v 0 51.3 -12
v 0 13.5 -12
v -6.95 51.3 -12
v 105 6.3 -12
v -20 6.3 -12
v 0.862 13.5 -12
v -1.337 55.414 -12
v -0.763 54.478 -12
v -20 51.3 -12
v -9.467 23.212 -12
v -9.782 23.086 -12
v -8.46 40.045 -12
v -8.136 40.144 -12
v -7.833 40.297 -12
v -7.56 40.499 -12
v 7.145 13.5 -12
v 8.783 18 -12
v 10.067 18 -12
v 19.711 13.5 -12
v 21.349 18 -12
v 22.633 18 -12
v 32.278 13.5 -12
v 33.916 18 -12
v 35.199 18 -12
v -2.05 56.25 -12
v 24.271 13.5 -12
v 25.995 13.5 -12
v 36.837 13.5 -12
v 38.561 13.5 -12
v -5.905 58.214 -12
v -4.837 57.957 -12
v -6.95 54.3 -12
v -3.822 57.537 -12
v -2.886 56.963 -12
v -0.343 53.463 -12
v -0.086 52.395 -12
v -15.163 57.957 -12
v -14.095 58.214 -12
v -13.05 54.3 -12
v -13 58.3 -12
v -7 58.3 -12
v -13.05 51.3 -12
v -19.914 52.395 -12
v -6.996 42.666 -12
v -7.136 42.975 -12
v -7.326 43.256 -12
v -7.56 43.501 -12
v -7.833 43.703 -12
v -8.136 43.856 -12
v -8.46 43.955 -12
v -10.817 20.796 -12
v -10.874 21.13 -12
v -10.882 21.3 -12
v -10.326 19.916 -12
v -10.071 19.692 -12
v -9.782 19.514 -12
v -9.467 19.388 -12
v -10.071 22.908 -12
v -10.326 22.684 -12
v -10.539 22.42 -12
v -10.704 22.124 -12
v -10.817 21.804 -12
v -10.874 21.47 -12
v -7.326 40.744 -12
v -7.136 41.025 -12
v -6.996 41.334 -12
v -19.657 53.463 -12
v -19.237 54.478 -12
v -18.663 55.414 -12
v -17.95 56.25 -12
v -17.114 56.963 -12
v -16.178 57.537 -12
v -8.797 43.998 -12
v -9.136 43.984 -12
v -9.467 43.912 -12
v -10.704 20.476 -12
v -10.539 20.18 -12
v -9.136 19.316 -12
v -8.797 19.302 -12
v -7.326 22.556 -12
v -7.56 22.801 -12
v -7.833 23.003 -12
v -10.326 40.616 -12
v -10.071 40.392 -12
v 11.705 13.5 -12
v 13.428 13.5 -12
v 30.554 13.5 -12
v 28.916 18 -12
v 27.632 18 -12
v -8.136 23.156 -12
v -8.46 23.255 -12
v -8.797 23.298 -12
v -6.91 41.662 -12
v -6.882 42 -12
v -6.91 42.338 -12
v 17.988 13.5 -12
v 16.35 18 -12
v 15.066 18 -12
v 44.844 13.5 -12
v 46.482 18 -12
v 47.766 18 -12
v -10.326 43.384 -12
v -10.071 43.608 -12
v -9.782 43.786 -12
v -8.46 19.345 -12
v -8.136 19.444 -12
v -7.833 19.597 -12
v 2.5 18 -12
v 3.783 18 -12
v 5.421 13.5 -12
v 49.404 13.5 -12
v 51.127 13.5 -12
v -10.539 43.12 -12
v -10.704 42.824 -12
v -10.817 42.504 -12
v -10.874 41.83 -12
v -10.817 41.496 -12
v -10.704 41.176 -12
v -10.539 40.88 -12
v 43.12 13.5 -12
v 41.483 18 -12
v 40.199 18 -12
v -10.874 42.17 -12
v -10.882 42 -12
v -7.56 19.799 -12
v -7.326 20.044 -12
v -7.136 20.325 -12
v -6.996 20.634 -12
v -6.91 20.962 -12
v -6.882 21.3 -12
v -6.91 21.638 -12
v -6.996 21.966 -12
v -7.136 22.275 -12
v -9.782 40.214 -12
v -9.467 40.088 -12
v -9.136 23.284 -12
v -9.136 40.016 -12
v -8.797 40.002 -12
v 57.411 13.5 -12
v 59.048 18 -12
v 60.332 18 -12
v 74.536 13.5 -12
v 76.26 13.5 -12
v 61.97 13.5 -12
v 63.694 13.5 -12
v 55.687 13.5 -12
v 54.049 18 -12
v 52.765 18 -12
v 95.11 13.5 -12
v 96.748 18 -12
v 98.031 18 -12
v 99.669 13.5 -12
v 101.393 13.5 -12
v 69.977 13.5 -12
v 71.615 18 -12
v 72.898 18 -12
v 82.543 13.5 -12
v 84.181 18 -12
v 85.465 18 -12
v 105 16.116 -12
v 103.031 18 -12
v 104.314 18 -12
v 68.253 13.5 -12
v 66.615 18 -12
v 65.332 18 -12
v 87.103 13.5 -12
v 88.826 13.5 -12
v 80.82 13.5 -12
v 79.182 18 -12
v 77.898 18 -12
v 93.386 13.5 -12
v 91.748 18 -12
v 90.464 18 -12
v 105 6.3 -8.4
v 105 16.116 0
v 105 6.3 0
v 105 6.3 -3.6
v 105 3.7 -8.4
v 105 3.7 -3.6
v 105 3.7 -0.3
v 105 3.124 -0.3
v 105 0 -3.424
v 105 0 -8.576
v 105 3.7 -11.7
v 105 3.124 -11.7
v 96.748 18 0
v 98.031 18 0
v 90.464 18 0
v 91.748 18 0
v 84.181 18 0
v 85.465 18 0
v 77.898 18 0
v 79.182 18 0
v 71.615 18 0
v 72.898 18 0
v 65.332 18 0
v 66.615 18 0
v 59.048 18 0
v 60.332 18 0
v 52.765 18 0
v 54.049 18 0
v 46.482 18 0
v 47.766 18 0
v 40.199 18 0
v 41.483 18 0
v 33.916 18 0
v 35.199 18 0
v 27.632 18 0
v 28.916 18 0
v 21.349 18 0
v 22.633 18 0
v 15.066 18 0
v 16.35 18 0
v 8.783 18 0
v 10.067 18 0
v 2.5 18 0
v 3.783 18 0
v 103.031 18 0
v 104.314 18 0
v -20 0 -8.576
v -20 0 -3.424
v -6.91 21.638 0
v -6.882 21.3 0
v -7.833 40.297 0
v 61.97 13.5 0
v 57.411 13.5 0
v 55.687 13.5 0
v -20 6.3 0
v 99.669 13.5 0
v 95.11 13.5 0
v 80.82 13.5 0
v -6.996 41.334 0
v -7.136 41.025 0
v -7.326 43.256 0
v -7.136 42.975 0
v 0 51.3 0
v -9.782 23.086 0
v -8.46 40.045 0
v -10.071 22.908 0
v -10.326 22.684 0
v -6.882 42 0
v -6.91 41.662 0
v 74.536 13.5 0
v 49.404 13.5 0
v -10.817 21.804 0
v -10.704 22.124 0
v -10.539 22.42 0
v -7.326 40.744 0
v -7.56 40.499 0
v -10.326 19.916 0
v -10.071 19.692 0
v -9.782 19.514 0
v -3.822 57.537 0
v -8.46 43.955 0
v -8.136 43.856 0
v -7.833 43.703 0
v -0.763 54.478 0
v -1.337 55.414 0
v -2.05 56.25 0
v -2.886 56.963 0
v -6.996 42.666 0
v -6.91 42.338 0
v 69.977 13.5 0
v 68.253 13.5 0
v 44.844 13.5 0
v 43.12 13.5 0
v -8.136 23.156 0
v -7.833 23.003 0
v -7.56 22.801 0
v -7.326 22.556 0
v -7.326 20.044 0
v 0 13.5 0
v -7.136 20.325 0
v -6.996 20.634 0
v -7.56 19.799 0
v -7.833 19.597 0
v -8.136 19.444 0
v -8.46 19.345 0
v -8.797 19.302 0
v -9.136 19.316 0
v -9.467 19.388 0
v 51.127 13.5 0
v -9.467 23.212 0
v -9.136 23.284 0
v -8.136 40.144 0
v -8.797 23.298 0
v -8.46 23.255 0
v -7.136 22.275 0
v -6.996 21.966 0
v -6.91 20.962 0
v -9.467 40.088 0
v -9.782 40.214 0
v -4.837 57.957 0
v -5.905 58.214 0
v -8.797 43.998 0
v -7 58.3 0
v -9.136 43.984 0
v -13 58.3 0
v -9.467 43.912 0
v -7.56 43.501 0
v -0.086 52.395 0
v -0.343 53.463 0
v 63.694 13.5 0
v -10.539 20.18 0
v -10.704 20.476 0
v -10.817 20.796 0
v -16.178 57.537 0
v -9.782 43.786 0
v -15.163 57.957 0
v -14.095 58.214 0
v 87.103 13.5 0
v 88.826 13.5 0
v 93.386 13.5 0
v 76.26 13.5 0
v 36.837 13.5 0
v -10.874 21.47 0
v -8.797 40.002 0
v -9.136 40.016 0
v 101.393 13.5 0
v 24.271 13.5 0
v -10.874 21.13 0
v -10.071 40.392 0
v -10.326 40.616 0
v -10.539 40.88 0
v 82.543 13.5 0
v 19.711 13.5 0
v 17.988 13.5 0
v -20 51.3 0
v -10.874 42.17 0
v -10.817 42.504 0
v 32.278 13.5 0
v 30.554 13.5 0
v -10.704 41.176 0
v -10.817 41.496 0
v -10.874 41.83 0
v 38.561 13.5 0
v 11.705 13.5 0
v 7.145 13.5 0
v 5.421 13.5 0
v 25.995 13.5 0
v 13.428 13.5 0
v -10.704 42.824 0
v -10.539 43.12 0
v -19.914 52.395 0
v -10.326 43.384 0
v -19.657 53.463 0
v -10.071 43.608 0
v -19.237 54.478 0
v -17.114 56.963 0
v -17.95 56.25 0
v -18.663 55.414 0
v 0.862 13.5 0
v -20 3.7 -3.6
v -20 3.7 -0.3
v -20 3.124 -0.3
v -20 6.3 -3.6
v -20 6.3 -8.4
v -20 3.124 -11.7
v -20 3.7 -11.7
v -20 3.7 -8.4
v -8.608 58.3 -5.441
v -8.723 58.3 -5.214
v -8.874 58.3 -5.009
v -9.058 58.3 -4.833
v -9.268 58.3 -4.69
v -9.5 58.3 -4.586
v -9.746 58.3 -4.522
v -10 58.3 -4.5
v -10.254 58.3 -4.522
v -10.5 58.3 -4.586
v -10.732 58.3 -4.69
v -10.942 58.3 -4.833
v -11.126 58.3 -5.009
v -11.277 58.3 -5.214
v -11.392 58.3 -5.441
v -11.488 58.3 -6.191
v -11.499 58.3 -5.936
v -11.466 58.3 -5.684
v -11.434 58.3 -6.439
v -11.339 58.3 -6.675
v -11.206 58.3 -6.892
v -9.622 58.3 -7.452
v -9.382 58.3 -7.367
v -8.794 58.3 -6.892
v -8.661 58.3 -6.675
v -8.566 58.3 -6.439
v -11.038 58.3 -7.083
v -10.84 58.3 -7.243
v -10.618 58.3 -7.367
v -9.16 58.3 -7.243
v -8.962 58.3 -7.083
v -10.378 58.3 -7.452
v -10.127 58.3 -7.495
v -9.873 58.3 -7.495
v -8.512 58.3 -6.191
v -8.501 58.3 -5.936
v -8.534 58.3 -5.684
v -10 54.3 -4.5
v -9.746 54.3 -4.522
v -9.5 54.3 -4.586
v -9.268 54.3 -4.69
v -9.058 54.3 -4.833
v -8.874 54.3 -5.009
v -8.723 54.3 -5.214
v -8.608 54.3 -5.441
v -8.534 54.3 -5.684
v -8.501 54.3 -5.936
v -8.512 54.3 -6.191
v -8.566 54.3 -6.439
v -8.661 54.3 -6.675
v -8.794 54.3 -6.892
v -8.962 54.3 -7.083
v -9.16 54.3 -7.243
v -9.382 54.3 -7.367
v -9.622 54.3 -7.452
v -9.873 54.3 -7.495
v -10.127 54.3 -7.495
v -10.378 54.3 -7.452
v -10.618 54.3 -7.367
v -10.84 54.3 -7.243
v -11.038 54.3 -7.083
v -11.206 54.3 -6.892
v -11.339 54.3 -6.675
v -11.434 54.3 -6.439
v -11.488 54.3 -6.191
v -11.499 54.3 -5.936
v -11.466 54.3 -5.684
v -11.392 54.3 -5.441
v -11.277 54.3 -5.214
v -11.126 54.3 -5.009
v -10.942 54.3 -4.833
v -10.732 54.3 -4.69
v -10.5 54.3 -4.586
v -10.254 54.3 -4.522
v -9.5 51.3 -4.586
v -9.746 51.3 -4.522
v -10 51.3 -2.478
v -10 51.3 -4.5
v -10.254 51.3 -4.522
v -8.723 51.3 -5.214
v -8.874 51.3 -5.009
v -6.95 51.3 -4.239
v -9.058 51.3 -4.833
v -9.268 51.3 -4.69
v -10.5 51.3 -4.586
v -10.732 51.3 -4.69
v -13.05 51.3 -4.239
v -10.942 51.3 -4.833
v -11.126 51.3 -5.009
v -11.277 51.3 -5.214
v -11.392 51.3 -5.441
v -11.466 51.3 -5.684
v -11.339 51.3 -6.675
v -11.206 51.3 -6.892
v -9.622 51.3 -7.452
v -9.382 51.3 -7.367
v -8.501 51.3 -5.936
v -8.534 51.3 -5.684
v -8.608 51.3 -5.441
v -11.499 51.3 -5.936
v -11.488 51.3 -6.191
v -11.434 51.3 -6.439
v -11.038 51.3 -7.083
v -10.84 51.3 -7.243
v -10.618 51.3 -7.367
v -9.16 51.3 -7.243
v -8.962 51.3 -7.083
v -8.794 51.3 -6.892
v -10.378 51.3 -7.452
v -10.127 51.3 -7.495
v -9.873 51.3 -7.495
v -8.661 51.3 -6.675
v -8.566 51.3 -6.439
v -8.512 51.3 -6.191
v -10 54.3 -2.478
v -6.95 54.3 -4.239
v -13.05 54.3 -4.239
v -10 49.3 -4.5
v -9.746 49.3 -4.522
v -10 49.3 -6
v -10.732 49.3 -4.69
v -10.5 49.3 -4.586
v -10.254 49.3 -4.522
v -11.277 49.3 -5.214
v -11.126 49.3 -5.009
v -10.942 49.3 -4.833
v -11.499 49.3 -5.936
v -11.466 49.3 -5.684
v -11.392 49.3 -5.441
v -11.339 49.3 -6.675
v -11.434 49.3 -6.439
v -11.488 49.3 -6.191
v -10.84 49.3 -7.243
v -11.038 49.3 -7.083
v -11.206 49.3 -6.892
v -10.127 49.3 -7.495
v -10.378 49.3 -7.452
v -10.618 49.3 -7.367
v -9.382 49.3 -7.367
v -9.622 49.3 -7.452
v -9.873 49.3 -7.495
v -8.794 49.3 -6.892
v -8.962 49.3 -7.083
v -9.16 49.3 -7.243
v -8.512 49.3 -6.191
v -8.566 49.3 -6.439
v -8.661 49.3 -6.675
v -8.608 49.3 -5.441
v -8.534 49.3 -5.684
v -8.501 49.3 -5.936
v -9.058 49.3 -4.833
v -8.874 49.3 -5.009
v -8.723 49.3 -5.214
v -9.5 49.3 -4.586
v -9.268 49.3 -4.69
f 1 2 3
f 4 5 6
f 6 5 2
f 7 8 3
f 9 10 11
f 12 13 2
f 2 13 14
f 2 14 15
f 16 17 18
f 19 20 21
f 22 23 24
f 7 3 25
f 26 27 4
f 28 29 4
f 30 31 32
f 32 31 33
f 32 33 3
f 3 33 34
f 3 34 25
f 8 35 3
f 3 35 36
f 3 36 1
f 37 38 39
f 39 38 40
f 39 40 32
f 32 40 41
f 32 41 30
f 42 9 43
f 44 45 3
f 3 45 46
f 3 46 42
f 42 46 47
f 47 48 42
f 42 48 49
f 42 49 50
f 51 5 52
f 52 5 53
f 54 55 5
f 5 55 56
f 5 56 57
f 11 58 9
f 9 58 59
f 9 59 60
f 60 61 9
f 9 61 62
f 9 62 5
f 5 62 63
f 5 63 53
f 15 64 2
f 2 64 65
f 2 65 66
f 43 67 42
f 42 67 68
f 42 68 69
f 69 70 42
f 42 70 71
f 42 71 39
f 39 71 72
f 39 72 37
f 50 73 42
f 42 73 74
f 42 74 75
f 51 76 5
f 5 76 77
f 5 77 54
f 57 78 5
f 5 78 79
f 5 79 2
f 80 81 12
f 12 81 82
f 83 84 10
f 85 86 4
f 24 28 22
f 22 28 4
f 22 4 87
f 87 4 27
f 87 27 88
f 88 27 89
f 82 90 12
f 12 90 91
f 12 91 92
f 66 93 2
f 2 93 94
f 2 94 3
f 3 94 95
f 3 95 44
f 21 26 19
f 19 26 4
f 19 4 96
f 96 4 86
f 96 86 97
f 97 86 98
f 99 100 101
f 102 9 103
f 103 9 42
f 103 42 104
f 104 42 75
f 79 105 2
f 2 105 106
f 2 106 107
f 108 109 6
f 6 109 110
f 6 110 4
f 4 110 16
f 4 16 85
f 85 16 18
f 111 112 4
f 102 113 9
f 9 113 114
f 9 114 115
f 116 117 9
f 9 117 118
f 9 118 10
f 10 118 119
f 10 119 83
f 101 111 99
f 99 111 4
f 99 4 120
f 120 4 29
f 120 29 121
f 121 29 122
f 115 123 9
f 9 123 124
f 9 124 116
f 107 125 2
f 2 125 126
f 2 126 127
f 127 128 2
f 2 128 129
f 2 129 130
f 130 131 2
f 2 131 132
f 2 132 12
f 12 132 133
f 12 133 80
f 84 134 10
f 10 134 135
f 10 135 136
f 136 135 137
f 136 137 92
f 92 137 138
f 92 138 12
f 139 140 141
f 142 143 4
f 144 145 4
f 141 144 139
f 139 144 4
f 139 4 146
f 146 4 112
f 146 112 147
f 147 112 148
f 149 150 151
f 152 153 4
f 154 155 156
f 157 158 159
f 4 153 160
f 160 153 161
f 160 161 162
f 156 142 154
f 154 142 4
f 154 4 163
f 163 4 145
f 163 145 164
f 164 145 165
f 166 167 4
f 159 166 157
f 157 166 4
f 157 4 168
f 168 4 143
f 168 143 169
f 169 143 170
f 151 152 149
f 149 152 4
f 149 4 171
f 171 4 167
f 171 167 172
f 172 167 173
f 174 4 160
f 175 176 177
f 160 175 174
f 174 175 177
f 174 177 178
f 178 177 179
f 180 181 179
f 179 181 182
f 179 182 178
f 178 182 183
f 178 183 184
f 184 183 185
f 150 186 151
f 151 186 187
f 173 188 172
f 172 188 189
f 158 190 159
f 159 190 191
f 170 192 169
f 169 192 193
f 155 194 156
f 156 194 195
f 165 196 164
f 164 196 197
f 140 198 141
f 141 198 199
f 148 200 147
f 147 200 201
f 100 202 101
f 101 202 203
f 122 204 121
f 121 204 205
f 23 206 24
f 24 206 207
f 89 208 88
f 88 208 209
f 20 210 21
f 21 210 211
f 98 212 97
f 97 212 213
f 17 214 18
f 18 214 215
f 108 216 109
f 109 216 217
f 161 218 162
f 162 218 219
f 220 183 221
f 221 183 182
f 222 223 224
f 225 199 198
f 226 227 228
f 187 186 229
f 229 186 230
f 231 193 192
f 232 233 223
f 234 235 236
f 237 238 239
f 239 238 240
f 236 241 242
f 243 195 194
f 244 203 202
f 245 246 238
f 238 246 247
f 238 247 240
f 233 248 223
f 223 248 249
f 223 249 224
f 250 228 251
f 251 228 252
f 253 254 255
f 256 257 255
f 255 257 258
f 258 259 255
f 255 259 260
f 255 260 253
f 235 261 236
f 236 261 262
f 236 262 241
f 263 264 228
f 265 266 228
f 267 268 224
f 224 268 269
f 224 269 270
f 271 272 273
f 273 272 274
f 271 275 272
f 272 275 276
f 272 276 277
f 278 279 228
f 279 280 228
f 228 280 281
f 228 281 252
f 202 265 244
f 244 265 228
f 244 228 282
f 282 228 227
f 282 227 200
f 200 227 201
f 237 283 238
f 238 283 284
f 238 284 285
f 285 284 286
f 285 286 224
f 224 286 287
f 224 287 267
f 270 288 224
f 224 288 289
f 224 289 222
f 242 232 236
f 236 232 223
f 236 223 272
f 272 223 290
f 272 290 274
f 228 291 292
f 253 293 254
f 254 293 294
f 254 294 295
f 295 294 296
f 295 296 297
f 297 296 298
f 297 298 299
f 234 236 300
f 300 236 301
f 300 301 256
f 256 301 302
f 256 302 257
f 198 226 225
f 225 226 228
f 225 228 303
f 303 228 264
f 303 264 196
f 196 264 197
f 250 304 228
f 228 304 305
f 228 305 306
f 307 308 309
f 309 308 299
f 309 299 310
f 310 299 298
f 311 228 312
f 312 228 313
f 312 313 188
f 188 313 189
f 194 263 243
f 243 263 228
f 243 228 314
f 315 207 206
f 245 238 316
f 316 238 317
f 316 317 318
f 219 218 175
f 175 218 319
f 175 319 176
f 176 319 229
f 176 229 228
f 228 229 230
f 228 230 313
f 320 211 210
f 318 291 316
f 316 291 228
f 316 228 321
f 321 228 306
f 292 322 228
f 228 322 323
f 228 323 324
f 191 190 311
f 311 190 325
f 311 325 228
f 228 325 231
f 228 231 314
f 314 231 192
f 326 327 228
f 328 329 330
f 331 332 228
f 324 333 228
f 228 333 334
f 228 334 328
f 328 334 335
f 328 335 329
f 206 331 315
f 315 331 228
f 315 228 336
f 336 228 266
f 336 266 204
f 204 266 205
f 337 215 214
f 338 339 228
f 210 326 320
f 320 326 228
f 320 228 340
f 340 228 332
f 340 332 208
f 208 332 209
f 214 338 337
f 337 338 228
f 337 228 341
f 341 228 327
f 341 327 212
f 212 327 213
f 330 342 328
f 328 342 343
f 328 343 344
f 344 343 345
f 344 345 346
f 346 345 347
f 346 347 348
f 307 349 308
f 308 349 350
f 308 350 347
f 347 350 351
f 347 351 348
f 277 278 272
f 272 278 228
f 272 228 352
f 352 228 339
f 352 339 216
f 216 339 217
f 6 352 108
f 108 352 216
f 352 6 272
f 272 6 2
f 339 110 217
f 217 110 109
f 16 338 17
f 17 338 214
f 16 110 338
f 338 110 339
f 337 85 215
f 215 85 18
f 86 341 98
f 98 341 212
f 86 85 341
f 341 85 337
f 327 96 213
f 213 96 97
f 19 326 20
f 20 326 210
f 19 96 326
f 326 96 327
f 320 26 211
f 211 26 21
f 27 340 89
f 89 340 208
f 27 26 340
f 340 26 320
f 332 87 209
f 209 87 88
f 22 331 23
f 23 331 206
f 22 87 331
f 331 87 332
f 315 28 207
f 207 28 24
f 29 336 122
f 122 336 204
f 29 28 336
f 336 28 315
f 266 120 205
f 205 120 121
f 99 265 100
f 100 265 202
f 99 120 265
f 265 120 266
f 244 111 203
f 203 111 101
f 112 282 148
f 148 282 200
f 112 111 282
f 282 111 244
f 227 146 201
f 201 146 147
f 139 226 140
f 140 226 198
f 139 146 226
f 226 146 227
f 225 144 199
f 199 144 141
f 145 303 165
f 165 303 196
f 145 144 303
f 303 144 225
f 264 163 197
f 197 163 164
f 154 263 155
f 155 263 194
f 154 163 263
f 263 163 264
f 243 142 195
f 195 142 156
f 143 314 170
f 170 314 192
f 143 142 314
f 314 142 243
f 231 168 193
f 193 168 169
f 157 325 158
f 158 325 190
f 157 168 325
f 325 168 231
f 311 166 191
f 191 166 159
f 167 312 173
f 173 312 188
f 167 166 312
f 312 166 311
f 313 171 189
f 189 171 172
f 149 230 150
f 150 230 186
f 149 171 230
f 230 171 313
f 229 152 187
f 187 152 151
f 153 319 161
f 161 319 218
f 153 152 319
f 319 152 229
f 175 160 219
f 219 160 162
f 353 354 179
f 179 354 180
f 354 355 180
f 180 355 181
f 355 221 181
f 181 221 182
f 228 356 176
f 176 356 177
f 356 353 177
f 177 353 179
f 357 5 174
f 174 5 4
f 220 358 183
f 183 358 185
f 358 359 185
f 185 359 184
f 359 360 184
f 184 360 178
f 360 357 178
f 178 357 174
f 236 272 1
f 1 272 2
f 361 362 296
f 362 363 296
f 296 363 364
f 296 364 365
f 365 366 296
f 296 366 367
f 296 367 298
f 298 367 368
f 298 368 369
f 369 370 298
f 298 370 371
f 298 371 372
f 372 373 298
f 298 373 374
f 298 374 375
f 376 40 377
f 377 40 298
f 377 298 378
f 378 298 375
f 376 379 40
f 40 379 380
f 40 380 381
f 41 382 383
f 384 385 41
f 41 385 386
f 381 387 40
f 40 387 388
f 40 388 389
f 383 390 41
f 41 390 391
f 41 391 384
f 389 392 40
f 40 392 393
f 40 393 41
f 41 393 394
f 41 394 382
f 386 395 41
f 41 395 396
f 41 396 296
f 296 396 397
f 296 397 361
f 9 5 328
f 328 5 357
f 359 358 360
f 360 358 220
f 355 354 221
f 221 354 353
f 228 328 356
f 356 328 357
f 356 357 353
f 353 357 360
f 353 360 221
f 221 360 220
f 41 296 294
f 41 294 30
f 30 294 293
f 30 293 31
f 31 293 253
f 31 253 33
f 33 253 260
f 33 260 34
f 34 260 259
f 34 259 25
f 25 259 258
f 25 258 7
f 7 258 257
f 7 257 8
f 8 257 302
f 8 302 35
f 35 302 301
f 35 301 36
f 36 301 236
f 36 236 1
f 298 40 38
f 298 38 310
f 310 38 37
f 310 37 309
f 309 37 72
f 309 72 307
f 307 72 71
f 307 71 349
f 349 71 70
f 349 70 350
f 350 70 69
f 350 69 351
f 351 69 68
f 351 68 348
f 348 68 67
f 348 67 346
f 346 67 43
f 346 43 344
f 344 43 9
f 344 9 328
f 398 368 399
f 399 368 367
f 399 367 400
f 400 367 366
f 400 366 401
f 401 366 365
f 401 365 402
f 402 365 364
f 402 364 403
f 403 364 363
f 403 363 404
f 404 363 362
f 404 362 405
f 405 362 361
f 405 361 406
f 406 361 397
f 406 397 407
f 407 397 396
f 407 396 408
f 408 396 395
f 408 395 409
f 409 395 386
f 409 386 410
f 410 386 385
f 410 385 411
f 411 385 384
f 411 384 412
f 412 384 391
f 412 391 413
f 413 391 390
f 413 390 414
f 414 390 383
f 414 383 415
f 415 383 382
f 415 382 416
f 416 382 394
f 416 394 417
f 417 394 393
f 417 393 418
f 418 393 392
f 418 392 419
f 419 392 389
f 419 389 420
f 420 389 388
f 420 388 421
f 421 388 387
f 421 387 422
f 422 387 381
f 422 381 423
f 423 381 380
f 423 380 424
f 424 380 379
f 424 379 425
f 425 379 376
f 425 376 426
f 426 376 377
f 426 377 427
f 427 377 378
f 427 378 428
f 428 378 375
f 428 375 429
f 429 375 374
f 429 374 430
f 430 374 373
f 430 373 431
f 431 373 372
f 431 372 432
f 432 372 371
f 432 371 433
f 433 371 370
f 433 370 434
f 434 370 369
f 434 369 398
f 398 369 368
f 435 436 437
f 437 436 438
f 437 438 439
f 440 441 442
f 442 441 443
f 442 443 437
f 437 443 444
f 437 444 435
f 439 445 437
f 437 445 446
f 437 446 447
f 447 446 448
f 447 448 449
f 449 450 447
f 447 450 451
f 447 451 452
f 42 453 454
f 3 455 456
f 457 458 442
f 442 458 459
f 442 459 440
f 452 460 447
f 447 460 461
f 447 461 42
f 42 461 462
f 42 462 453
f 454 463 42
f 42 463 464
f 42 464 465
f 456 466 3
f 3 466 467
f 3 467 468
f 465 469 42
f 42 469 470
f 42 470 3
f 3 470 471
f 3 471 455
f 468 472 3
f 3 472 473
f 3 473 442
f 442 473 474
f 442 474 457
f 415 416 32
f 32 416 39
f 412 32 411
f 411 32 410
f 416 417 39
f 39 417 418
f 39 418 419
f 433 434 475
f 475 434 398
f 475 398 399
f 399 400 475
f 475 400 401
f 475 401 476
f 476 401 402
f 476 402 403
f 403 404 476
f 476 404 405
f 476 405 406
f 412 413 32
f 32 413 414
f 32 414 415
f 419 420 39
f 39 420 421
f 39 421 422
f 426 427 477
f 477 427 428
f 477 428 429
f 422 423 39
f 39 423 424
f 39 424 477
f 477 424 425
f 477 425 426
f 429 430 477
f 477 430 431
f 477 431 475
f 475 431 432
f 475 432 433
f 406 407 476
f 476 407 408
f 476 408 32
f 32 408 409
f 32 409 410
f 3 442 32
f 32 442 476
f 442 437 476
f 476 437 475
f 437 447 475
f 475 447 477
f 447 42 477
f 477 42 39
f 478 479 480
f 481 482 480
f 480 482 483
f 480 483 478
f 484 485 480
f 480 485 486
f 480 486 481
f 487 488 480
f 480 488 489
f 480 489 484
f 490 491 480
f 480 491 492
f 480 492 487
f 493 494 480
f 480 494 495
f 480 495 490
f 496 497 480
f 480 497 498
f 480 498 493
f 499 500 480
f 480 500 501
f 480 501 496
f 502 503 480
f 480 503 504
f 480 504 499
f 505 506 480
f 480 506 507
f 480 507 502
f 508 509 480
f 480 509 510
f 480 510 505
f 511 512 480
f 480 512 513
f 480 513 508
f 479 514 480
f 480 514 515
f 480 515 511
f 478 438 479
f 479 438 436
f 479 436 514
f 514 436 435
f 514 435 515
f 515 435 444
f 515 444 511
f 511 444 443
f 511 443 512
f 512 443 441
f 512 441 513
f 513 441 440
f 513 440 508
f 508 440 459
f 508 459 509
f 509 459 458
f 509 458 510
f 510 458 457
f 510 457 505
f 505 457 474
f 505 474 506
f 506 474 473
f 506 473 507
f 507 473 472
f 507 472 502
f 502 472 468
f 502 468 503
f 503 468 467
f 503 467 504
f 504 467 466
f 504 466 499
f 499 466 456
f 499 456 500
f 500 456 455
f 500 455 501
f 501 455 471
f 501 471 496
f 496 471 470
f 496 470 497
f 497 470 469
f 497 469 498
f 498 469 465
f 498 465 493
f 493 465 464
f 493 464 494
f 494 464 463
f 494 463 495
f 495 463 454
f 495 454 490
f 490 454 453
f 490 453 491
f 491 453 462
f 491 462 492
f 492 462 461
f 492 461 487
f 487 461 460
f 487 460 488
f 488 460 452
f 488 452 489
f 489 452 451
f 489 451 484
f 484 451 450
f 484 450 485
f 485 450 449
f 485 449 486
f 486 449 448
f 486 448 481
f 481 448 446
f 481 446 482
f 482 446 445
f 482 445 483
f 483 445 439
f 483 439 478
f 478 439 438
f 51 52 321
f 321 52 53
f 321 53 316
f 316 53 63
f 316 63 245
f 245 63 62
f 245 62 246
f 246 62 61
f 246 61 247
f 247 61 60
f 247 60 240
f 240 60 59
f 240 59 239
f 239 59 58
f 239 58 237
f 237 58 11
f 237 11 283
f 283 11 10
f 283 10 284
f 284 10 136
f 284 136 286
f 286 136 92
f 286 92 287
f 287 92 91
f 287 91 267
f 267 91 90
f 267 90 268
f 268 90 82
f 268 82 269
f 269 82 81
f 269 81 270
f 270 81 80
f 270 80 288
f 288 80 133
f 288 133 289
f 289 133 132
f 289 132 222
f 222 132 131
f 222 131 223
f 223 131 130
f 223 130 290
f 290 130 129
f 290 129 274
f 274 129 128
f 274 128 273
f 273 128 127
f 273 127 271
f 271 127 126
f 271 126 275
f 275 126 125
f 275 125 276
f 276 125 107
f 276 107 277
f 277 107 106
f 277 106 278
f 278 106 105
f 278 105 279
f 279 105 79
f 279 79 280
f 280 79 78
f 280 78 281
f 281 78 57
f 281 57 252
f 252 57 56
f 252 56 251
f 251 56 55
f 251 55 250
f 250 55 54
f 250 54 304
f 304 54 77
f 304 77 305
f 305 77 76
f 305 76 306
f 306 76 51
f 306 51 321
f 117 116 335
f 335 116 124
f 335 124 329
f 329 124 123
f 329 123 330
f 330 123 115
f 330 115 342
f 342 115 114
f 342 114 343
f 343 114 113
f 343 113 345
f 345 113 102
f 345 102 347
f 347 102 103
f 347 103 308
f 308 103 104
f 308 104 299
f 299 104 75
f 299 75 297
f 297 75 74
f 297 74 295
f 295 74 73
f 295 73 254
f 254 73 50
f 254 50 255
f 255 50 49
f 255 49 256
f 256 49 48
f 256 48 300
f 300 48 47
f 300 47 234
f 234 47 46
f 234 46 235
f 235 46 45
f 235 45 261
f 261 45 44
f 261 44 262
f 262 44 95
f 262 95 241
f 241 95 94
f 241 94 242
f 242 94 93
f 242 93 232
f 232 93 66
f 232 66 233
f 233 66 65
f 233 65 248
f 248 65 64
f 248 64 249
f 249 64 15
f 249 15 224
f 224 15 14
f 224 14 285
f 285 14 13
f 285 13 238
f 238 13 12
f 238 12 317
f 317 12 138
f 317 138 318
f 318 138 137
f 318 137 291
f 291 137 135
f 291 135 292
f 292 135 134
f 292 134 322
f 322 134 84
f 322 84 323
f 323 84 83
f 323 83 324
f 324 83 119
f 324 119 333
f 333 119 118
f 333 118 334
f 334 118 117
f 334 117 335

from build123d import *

# Parameters (mm, degrees)
BLANKSKE_W          = 105
BLANKSKE_H          = 18
BLANK_DEPTH         = 12
TOOTHCUTSIM_DEPTH   = 108.205410311
TEETHCUTS_COUNT     = 18
TEETHCUTS_PITCH     = 6.2831853
CUT_EXTRUDE1_DEPTH  = 108.205410311
BOSS_EXTRUDE1_DEPTH = 20
FILLET2_R           = 7
CUT_EXTRUDE2_DEPTH  = 9
CUT_EXTRUDE3_DEPTH  = 3
CUT_EXTRUDE4_REACH  = 122.698
SKETCH5_R           = 2


with BuildPart() as part:
    # BlankSke → Blank (new body)
    with BuildSketch(Plane.XY):
        with Locations((52.5, 9)):
            Rectangle(BLANKSKE_W, BLANKSKE_H)
    extrude(amount=-BLANK_DEPTH)

    # TooCutSkeSim → ToothCutSim (cut, through all)
    with BuildSketch(Plane.XY):
        Polygon((0.861870739, 13.5), (-0.861870739, 13.5), (-2.508981637, 18.0254), (2.508981637, 18.0254), align=None)
    toothcutsim = extrude(amount=-TOOTHCUTSIM_DEPTH, mode=Mode.SUBTRACT)

    # TeethCuts: ToothCutSim ×18
    with Locations(*[(i * TEETHCUTS_PITCH, 0, 0) for i in range(1, TEETHCUTS_COUNT)]):
        add(toothcutsim, mode=Mode.SUBTRACT)

    # Sketch1 → Cut-Extrude1 (cut, through all)
    with BuildSketch(Plane(origin=(105, 0, 0), x_dir=(0, 0, -1), z_dir=(1, 0, 0))):
        Polygon((0, 0), (3.424264069, 0), (0.3, 3.124264069), (0.3, 3.7), (3.6, 3.7), (3.6, 6.3), (0, 6.3), align=None)
        Polygon((11.7, 3.124264069), (8.575735931, 0), (12, 0), (12, 6.3), (8.4, 6.3), (8.4, 3.7), (11.7, 3.7), align=None)
    extrude(amount=-CUT_EXTRUDE1_DEPTH, mode=Mode.SUBTRACT)

    # Sketch2 → Boss-Extrude1 (add)
    with BuildSketch(Plane.ZY):
        Polygon((-12, 58.3), (0, 58.3), (0, 6.3), (-3.6, 6.3), (-3.6, 3.7), (-0.3, 3.7), (-0.3, 3.124264069), (-3.424264069, 0), (-8.575735931, 0), (-11.7, 3.124264069), (-11.7, 3.7), (-8.4, 3.7), (-8.4, 6.3), (-12, 6.3), align=None)
    extrude(amount=BOSS_EXTRUDE1_DEPTH)

    # Fillet2
    fillet2_edges = [part.edges().sort_by_distance(p)[0] for p in [
        (0, 58.3, -6),
        (-20, 58.3, -6),
    ]]
    fillet(fillet2_edges, radius=FILLET2_R)

    # Sketch3 → Cut-Extrude2 (cut)
    with BuildSketch(Plane(origin=(0, 58.3, 0), x_dir=(1, 0, 0), z_dir=(0, 1, 0))):
        with BuildLine():
            ThreePointArc((-8.5, 6), (-8.939339828, 7.060660172), (-10, 7.5))
            Line((-10, 7.5), (-10, 4.5))
            ThreePointArc((-10, 4.5), (-8.939339828, 4.939339828), (-8.5, 6))
        make_face()
        with BuildLine():
            Line((-10, 4.5), (-10, 7.5))
            ThreePointArc((-10, 7.5), (-11.5, 6), (-10, 4.5))
        make_face()
    extrude(amount=-CUT_EXTRUDE2_DEPTH, mode=Mode.SUBTRACT)

    # Sketch4 → Cut-Extrude3 (cut)
    with BuildSketch(Plane(origin=(0, 54.3, 0), x_dir=(1, 0, 0), z_dir=(0, 1, 0))):
        Polygon((-13.05, 12), (-13.05, 7.760918321), (-13.05, 6), (-13.05, 4.239081679), (-11.525, 3.358622518), (-10, 2.478163358), (-8.475, 3.358622518), (-6.95, 4.239081679), (-6.95, 6), (-6.95, 7.760918321), (-6.95, 12), align=None)
        with BuildLine():
            ThreePointArc((-8.75, 6), (-10, 4.75), (-11.25, 6))
            ThreePointArc((-11.25, 6), (-10, 7.25), (-8.75, 6))
        make_face(mode=Mode.SUBTRACT)
    extrude(amount=-CUT_EXTRUDE3_DEPTH, mode=Mode.SUBTRACT)

    # Sketch5 → Cut-Extrude4 (cut, up to next)
    with BuildSketch(Plane.XY, mode=Mode.PRIVATE) as cut_extrude4_sk1:
        with Locations((-8.8817, 42)):
            Circle(SKETCH5_R)
    cut_extrude4_tool1 = extrude(cut_extrude4_sk1.sketch, amount=-CUT_EXTRUDE4_REACH, mode=Mode.PRIVATE) & part.part
    # Sketch5 → Cut-Extrude4 (cut, up to next)
    with BuildSketch(Plane.XY, mode=Mode.PRIVATE) as cut_extrude4_sk2:
        with Locations((-8.8817, 21.3)):
            Circle(SKETCH5_R)
    cut_extrude4_tool2 = extrude(cut_extrude4_sk2.sketch, amount=-CUT_EXTRUDE4_REACH, mode=Mode.PRIVATE) & part.part
    add(cut_extrude4_tool1.solids().sort_by_distance((-8.8817, 42, 0))[0], mode=Mode.SUBTRACT)
    add(cut_extrude4_tool2.solids().sort_by_distance((-8.8817, 21.3, 0))[0], mode=Mode.SUBTRACT)


solid = part.part
